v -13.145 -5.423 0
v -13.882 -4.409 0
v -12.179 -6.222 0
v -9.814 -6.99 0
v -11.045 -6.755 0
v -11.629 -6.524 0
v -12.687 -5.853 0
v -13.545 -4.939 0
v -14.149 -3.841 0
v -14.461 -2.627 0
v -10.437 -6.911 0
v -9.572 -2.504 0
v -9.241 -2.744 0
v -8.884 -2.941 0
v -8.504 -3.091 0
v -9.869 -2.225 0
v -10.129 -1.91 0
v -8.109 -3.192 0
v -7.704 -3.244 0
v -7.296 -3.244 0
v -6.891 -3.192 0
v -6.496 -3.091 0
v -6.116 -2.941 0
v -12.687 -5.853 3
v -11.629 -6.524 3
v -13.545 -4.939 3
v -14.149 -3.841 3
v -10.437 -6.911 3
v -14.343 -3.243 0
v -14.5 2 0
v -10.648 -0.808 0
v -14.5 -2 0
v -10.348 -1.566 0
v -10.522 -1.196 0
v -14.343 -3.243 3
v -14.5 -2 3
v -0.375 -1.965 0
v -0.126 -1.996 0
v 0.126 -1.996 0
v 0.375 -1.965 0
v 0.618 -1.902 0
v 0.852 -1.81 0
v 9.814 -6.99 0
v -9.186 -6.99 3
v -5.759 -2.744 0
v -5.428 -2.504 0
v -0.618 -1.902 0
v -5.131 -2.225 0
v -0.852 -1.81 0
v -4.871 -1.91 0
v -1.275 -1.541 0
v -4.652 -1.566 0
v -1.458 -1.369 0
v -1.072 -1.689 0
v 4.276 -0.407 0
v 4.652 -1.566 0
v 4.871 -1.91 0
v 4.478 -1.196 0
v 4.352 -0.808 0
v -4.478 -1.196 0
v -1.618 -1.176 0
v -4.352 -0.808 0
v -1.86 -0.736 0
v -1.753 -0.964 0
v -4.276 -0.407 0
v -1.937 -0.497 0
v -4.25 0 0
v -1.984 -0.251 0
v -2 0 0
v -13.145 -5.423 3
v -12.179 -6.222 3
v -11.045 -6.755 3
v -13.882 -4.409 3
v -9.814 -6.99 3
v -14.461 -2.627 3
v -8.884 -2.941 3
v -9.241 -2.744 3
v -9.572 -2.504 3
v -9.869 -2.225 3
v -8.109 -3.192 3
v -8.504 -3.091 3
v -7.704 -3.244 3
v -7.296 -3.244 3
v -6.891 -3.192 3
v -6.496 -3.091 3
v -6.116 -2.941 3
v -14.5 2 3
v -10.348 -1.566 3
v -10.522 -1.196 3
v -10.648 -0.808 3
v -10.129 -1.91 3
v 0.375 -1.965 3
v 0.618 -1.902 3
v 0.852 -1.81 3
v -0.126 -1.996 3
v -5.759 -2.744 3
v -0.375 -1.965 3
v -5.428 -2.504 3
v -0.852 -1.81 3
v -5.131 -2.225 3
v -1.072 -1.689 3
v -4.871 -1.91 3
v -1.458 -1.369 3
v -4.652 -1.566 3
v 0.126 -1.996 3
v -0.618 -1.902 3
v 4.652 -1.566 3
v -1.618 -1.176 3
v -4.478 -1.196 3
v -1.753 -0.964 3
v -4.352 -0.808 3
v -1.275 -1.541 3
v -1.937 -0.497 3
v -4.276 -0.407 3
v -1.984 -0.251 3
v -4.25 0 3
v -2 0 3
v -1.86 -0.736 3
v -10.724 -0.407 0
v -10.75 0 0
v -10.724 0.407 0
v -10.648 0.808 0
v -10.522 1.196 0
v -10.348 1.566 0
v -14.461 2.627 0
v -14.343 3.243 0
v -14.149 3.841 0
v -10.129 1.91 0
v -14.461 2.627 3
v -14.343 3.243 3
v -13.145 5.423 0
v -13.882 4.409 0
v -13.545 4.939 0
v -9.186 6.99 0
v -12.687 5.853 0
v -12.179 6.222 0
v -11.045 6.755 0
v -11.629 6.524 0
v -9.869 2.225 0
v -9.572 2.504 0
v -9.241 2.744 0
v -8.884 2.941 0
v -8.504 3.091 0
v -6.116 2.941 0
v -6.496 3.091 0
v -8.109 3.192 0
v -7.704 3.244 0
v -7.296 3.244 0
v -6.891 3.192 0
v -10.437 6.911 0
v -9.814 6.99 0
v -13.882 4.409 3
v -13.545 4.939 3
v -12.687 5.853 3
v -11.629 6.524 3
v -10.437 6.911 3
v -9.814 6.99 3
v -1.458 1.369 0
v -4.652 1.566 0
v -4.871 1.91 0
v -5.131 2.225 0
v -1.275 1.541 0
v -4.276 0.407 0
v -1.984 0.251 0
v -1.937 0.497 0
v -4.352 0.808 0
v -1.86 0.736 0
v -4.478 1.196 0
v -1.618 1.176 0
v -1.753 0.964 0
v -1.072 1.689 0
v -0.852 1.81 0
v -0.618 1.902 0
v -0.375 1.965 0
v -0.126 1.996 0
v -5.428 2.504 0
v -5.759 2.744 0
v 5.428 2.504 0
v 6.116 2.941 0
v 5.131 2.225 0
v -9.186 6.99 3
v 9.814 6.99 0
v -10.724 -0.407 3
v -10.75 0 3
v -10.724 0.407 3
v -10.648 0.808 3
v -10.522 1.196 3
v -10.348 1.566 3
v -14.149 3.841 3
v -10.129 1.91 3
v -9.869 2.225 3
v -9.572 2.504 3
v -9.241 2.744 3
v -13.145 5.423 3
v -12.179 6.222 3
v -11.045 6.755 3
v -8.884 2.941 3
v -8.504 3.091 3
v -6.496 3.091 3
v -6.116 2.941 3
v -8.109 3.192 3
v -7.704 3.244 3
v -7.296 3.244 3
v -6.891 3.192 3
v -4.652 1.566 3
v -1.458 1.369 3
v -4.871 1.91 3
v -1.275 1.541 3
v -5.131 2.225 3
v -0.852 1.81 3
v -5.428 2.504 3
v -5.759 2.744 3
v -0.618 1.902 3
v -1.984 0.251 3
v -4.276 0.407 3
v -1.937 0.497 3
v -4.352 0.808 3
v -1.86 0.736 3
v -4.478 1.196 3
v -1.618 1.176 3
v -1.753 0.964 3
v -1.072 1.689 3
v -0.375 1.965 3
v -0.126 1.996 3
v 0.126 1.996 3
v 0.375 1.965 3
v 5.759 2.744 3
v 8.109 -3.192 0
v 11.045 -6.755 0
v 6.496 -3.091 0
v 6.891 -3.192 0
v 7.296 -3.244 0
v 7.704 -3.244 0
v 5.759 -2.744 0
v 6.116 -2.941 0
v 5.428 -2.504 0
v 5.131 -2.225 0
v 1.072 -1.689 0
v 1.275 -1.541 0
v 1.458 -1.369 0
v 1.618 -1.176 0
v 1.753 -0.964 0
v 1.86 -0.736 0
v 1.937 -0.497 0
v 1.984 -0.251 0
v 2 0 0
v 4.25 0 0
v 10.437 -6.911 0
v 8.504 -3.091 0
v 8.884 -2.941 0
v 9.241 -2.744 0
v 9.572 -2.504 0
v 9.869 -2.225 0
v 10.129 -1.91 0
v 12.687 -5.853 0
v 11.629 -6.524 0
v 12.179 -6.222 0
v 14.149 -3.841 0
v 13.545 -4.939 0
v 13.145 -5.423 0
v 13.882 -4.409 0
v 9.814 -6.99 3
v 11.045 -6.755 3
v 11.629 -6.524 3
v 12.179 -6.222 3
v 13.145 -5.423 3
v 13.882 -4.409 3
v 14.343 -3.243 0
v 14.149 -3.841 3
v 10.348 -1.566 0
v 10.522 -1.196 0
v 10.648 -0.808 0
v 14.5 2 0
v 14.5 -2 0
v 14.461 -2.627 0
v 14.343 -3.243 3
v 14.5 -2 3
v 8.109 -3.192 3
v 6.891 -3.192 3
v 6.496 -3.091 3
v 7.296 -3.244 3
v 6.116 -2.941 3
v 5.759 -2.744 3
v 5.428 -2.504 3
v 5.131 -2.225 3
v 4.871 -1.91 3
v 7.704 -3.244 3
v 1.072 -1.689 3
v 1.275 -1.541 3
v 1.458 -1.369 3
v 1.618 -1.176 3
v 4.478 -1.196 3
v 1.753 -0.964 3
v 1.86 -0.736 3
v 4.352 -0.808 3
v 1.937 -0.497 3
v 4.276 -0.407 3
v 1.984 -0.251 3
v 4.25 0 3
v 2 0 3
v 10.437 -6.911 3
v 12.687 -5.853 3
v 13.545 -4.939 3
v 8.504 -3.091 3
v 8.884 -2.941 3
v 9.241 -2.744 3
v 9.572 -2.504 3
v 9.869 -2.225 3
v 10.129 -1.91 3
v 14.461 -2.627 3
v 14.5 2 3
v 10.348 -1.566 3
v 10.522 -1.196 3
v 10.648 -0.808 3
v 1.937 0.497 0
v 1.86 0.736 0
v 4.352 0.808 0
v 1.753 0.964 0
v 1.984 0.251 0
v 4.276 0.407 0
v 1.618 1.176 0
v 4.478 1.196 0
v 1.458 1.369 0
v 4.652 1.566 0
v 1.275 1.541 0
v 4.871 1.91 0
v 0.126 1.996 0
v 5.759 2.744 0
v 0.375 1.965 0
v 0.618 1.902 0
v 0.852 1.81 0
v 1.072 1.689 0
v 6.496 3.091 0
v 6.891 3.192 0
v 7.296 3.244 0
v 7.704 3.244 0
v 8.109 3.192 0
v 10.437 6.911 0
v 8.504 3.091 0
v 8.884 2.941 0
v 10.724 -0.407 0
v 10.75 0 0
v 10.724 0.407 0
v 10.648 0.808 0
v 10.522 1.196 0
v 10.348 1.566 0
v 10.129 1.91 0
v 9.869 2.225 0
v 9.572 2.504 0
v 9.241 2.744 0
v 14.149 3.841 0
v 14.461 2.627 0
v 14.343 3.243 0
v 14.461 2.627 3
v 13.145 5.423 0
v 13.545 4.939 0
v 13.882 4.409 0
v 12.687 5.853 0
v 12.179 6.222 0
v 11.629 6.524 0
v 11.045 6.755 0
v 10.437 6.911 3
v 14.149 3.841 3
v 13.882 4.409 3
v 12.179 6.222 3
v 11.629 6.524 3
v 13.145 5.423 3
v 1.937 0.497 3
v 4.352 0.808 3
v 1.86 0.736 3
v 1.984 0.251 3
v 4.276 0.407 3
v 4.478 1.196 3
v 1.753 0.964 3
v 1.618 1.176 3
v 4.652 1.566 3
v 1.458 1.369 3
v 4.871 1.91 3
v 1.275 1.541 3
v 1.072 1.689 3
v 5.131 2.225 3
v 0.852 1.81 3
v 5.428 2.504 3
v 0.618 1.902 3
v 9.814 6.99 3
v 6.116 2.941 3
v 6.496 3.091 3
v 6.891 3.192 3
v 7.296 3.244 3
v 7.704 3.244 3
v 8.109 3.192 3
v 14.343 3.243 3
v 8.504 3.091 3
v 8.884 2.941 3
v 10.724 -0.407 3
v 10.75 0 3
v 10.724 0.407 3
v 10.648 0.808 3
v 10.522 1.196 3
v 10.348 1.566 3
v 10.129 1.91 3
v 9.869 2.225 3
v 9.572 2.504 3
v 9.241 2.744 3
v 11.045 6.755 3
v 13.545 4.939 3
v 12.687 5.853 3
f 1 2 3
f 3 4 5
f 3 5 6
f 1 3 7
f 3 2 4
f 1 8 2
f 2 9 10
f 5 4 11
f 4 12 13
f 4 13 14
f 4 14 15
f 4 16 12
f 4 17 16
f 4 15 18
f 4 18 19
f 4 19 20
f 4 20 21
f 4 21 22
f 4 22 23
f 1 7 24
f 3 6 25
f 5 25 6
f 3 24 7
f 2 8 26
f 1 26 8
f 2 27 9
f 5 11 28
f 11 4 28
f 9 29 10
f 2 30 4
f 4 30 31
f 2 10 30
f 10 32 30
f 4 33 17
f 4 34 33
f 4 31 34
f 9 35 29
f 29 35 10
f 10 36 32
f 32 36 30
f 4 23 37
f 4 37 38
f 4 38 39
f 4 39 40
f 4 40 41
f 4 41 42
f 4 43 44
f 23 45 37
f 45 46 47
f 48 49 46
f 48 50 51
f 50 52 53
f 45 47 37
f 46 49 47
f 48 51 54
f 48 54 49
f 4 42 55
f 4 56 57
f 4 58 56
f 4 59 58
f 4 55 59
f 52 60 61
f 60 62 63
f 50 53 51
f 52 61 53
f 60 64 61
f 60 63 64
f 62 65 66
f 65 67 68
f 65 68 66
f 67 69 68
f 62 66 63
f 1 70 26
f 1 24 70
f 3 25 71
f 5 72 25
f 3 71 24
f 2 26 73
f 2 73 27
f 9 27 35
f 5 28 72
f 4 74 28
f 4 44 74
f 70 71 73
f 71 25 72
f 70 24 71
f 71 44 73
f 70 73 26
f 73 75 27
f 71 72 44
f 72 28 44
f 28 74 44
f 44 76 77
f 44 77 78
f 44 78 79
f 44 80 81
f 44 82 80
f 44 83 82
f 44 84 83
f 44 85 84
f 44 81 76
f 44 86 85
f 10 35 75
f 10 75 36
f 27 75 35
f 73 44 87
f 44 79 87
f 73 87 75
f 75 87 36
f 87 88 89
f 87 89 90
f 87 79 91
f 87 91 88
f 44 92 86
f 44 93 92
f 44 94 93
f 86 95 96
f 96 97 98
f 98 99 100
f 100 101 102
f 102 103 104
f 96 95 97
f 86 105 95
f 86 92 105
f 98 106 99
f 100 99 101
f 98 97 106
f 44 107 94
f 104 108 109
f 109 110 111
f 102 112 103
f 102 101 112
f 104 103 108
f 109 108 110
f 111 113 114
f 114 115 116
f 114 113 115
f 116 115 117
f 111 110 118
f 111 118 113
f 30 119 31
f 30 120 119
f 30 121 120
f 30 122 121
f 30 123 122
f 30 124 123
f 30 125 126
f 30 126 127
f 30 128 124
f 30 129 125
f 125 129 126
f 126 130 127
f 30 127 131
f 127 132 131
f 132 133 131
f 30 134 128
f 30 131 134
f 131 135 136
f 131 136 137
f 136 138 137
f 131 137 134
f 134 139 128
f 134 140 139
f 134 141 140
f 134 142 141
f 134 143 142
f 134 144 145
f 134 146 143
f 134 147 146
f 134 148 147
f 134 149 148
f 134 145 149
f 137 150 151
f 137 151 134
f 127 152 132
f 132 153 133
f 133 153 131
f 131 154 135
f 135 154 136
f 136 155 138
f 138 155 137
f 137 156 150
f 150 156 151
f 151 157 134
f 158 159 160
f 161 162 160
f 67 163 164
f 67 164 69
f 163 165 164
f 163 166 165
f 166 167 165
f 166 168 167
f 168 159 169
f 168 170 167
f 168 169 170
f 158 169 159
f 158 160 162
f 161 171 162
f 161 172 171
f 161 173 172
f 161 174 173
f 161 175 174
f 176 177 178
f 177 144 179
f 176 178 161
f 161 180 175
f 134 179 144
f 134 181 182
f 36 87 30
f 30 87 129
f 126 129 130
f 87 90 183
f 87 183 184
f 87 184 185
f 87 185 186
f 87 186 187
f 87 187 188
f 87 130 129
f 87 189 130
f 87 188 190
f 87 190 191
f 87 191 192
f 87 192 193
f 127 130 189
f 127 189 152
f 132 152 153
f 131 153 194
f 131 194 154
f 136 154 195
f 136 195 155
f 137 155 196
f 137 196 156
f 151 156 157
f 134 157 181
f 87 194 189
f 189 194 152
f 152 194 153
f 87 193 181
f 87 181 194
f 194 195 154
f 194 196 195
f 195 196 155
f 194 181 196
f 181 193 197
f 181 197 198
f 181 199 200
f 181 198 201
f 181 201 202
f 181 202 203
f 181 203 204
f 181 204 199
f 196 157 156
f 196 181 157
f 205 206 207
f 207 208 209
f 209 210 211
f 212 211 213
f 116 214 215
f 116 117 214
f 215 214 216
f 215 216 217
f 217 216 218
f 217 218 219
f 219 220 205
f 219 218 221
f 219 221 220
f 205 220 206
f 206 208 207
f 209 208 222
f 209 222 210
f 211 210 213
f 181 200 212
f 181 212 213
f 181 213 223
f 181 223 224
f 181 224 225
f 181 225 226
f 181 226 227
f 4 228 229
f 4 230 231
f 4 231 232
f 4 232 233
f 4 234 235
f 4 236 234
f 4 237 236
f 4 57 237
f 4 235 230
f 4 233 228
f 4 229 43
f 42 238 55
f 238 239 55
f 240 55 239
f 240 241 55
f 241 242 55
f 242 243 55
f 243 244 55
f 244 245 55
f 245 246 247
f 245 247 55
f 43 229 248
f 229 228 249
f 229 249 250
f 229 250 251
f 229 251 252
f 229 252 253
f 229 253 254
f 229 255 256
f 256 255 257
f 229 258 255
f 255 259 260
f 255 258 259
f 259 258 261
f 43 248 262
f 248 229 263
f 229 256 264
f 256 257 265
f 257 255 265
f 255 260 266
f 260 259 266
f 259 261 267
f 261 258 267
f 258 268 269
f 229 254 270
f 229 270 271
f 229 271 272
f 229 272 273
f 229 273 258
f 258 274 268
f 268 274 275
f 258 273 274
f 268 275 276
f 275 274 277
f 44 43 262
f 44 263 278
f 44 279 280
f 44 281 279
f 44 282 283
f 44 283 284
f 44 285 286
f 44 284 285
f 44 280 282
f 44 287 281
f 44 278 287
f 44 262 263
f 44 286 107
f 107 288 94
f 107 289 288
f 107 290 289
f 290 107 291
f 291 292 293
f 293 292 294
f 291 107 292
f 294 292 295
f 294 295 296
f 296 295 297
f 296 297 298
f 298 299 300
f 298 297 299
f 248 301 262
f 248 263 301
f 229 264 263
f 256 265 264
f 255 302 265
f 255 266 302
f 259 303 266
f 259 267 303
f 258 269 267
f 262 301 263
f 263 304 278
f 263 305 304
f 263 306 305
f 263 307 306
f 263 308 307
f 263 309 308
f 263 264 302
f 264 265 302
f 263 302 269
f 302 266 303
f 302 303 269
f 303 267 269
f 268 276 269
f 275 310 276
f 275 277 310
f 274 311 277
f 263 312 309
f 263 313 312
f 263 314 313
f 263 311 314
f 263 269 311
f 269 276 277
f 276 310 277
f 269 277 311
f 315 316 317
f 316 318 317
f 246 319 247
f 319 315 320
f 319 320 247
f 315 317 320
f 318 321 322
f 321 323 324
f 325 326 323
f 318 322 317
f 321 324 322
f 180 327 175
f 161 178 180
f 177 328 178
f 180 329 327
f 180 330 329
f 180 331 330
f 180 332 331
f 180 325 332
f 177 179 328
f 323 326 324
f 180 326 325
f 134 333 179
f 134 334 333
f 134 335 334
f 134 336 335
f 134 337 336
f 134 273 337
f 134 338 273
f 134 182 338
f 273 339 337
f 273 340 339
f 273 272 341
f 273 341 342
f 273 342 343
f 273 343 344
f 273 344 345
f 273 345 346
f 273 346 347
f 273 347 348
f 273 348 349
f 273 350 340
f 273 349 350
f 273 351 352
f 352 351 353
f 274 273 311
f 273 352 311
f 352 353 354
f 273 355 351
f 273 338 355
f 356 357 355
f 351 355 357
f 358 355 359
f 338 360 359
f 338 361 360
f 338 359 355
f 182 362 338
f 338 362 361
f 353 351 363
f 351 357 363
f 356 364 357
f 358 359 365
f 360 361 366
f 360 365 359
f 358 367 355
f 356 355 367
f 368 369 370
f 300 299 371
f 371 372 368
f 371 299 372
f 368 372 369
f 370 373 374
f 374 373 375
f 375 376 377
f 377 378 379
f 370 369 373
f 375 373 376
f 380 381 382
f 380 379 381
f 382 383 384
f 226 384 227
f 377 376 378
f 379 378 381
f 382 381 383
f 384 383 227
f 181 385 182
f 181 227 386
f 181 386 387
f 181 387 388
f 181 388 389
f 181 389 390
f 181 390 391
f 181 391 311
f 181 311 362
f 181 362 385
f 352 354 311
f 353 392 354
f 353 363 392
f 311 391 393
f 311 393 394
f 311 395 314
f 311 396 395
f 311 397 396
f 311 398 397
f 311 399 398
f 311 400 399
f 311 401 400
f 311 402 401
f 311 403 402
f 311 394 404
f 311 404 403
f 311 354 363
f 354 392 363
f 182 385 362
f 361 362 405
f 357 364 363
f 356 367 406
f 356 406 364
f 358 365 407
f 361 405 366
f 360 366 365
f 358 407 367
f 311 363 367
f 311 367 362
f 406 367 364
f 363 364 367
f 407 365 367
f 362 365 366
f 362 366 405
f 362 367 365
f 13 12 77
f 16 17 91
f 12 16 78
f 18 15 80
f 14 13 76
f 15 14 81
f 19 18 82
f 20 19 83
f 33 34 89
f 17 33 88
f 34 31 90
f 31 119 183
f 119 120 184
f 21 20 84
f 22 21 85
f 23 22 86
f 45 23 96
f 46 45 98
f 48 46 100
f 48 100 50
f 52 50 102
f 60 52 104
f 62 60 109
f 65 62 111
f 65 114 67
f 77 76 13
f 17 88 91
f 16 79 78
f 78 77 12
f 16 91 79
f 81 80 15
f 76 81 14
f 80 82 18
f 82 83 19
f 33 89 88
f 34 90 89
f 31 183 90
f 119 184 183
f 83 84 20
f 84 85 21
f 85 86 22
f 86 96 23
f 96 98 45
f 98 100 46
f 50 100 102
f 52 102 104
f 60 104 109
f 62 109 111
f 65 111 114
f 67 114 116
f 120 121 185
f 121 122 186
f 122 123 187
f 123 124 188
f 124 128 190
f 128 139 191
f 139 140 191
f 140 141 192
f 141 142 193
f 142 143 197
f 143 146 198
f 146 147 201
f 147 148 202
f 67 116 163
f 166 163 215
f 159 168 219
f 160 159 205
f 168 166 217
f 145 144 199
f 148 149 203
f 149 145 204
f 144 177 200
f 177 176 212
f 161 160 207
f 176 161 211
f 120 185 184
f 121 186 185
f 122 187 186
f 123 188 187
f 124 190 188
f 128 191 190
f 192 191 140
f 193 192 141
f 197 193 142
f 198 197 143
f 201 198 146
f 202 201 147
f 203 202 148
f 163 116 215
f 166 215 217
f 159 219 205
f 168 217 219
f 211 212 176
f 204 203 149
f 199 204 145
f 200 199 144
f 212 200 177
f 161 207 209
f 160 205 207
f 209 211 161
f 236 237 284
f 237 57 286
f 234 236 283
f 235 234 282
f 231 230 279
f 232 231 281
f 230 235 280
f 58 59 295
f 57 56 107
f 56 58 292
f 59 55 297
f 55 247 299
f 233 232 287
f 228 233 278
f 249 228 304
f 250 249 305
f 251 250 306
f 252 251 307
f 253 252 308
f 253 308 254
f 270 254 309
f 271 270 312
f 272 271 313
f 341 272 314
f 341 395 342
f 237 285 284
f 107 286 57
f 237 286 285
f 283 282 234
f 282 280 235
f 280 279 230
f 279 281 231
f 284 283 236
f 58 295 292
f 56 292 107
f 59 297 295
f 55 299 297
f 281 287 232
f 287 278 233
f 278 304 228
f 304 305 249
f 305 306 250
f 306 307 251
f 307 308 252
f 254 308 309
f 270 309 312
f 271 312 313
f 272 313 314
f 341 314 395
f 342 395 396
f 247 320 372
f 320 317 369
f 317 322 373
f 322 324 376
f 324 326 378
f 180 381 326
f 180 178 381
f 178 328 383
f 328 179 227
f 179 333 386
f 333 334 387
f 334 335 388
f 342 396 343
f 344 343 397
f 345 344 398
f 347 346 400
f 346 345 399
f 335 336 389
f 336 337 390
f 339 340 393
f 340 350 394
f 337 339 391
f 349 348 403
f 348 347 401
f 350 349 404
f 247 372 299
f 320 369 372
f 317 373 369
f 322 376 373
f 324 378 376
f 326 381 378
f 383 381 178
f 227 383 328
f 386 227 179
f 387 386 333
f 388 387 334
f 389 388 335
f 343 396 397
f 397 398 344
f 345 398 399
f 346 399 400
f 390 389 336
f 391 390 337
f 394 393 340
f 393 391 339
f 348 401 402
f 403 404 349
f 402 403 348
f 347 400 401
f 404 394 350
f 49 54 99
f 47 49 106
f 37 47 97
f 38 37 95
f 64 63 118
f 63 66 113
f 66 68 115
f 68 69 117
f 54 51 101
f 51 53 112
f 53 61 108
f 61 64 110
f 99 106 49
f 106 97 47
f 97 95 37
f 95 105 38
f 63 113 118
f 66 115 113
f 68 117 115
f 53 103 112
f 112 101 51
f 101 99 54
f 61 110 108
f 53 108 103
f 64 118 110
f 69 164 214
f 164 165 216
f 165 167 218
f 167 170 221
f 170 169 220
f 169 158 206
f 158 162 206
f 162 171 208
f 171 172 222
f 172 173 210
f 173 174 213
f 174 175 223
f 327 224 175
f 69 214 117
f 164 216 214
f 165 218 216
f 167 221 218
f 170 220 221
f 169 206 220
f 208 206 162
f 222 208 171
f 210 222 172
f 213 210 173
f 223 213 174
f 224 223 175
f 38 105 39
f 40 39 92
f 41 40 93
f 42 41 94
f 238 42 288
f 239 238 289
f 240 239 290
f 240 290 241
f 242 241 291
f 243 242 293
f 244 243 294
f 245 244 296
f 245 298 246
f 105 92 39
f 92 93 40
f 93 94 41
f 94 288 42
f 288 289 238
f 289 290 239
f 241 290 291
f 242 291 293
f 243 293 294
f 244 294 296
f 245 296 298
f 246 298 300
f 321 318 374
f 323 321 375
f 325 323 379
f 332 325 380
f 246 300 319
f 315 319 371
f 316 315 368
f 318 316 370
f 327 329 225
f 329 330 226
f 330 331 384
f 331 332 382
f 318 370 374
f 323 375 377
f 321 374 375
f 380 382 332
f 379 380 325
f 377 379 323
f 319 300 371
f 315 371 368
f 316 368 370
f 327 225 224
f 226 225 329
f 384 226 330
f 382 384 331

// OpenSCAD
$fn = 50;

difference() {
	union() {
		hull() {
			translate(v = [-9.5, 2.0, 0]) {
				cylinder(h = 3, r = 5);
			}
			translate(v = [9.5, 2.0, 0]) {
				cylinder(h = 3, r = 5);
			}
			translate(v = [-9.5, -2.0, 0]) {
				cylinder(h = 3, r = 5);
			}
			translate(v = [9.5, -2.0, 0]) {
				cylinder(h = 3, r = 5);
			}
		}
	}
	union() {
		translate(v = [-7.5, 0.0, 0]) {
			cylinder(h = 3, r = 3.25);
		}
		translate(v = [7.5, 0.0, 0]) {
			cylinder(h = 3, r = 3.25);
		}
		cylinder(h = 3, r = 2.0);
	}
}
